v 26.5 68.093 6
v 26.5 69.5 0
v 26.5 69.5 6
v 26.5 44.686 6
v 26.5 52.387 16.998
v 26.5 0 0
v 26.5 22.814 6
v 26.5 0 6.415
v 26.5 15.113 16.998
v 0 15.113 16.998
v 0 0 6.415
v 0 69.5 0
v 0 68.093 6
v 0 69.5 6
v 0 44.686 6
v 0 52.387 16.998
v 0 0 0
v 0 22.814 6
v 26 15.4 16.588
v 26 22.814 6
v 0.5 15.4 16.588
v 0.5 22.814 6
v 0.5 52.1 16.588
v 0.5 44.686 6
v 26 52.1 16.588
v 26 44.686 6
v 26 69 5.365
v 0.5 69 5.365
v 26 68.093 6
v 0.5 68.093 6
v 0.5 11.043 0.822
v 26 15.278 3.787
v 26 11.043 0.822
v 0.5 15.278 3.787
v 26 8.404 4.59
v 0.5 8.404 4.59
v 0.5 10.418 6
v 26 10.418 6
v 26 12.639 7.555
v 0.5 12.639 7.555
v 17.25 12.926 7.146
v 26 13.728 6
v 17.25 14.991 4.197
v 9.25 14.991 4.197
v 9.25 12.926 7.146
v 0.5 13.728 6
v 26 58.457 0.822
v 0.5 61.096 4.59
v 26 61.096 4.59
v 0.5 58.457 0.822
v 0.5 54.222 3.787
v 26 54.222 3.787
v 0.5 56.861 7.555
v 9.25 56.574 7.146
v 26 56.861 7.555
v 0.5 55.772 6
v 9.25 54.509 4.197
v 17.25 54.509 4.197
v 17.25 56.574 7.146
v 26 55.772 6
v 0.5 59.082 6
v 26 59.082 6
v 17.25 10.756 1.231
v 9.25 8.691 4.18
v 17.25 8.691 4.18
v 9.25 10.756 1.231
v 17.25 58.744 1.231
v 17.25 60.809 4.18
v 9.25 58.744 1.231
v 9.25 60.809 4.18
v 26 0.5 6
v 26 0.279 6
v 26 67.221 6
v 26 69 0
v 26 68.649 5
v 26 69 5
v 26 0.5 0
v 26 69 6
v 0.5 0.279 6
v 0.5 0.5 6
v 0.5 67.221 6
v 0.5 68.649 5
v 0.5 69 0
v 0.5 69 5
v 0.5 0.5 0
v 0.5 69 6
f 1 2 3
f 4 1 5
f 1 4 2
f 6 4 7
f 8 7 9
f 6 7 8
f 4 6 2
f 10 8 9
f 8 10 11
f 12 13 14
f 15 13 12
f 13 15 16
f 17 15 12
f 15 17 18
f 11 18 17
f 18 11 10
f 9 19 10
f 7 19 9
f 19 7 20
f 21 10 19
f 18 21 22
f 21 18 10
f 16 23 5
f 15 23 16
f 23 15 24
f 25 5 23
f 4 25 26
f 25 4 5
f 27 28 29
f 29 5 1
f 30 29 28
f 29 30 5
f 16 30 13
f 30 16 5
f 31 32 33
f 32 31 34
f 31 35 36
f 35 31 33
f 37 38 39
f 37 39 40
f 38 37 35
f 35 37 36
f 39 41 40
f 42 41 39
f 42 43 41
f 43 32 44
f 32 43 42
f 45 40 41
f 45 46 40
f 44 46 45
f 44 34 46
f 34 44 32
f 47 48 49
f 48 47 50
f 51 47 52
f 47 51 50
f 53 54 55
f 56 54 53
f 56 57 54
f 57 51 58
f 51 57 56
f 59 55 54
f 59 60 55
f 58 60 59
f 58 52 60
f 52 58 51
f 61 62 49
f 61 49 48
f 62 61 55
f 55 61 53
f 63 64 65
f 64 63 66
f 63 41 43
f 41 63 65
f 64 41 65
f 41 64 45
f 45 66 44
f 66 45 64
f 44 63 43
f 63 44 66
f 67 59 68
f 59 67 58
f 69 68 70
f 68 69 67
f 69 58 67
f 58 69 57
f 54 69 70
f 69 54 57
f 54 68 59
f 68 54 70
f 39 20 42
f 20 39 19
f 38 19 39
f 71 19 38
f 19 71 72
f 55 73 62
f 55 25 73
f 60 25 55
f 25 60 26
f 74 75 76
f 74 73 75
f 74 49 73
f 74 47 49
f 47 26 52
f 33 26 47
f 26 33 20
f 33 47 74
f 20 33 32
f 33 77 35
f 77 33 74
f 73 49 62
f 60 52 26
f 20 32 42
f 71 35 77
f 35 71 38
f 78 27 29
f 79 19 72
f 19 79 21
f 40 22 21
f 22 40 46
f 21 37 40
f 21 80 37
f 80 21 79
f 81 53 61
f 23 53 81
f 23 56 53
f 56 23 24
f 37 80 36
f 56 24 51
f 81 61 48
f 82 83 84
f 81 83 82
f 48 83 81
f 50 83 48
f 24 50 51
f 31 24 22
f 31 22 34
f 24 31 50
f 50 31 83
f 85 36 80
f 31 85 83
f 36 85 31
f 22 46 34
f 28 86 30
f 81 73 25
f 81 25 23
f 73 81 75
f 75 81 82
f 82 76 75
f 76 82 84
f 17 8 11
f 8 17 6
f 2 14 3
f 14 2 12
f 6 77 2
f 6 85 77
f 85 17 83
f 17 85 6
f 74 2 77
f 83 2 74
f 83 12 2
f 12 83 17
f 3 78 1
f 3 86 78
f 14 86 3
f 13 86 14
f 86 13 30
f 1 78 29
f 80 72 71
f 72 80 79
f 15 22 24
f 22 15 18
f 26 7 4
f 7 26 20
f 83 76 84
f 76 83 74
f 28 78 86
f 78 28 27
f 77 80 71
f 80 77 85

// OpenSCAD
/* Diffuser Lense For A Particular Project (OpenSCAD) */
tol = 0.5;

/* Camera Chamber */
camchamberw = 27 - tol;
camchamberh = 70 - tol;

/* LED PCB */
holedia = 16 + 2;
thickness=6;

/* Enclosure hole */
enclosurew = 19;

/* Shroud */
shroud_mount_inset = 6;
shroud_mount_height = -2;
shroud_thickness = 1;
shroud_Length = 20;

/* SMD LED */
ledh = 2.76-1.59;
ledw = 4;
ledd = 1.6;

/* SMD LED INSET */
led_mount_inset = 13;
led_mount_angle = 180-55;
led_mount_tol=2;
led_mount_thickness=1;
led_mount_height = 5;

module led_mount(rotation, w, d, h)
{
  rotate([rotation,0,0])
    union()
    {
      translate([camchamberw/2 - w/2, -d/2, -h])
        cube([w,d,h+4]);
    }
}


module led_shroud(rotation, w, d, h)
{
  rotate([rotation,0,0])
    union()
    {
      translate([camchamberw/2 - w/2, -d/2, -h])
        cube([w,d,h+4]);
    }
}

intersection()
{
  union()
  {
    linear_extrude(height = thickness) {
       difference() 
      {
         offset(r = 0) 
         {
          square(size = [camchamberw,camchamberh], center = false);
         }
         offset(r = -0.5) 
         {
          square(size = [camchamberw,camchamberh], center = false);
         }
       }
    }
    
    %difference()
    {
      translate([camchamberw/2,camchamberh/2, 0])
        cylinder(thickness,d=holedia+7);
      translate([camchamberw/2,camchamberh/2,-thickness/2])
        cylinder(thickness*2,d=holedia);
    }
   
    // Shroud
    difference()
    {
      union()
      { // Main Body
        translate([0,shroud_mount_height+shroud_mount_inset,shroud_mount_height])
          led_shroud(led_mount_angle,camchamberw,camchamberh/4+shroud_thickness,shroud_Length);
        translate([0,camchamberh-shroud_mount_inset,shroud_mount_height])
          led_shroud(-led_mount_angle,camchamberw,camchamberh/4+shroud_thickness,shroud_Length);
      }

      translate([0,shroud_mount_height+shroud_mount_inset,shroud_mount_height])
        led_mount(led_mount_angle,camchamberw-shroud_thickness,camchamberh/4,shroud_Length+1);
      translate([0,camchamberh-shroud_mount_inset,shroud_mount_height])
        led_mount(-led_mount_angle,camchamberw-shroud_thickness,camchamberh/4,shroud_Length+1);
      translate([0,0,-1])
      cube([camchamberw,camchamberh, thickness]);
     }
    
    // led Holder
    difference()
    {
      union()
      { // Main Body
        // LED Holes
        translate([0,led_mount_inset,led_mount_height])
          led_mount(led_mount_angle,camchamberw,ledd+led_mount_tol+led_mount_thickness,ledh);
        translate([0,camchamberh-led_mount_inset,led_mount_height])
          led_mount(-led_mount_angle,camchamberw,ledd+led_mount_tol+led_mount_thickness,ledh);
      }

      // LED Holes
      #translate([0,led_mount_inset,led_mount_height])
        led_mount(led_mount_angle,ledw+led_mount_tol*2,ledd+led_mount_tol,ledh+2);
      #translate([0,camchamberh-led_mount_inset,led_mount_height])
        led_mount(-led_mount_angle,ledw+led_mount_tol*2,ledd+led_mount_tol,ledh+2);
     }
    
  }

  /* Remove bottom */
  cube([camchamberw,camchamberh, 1000]);
}
